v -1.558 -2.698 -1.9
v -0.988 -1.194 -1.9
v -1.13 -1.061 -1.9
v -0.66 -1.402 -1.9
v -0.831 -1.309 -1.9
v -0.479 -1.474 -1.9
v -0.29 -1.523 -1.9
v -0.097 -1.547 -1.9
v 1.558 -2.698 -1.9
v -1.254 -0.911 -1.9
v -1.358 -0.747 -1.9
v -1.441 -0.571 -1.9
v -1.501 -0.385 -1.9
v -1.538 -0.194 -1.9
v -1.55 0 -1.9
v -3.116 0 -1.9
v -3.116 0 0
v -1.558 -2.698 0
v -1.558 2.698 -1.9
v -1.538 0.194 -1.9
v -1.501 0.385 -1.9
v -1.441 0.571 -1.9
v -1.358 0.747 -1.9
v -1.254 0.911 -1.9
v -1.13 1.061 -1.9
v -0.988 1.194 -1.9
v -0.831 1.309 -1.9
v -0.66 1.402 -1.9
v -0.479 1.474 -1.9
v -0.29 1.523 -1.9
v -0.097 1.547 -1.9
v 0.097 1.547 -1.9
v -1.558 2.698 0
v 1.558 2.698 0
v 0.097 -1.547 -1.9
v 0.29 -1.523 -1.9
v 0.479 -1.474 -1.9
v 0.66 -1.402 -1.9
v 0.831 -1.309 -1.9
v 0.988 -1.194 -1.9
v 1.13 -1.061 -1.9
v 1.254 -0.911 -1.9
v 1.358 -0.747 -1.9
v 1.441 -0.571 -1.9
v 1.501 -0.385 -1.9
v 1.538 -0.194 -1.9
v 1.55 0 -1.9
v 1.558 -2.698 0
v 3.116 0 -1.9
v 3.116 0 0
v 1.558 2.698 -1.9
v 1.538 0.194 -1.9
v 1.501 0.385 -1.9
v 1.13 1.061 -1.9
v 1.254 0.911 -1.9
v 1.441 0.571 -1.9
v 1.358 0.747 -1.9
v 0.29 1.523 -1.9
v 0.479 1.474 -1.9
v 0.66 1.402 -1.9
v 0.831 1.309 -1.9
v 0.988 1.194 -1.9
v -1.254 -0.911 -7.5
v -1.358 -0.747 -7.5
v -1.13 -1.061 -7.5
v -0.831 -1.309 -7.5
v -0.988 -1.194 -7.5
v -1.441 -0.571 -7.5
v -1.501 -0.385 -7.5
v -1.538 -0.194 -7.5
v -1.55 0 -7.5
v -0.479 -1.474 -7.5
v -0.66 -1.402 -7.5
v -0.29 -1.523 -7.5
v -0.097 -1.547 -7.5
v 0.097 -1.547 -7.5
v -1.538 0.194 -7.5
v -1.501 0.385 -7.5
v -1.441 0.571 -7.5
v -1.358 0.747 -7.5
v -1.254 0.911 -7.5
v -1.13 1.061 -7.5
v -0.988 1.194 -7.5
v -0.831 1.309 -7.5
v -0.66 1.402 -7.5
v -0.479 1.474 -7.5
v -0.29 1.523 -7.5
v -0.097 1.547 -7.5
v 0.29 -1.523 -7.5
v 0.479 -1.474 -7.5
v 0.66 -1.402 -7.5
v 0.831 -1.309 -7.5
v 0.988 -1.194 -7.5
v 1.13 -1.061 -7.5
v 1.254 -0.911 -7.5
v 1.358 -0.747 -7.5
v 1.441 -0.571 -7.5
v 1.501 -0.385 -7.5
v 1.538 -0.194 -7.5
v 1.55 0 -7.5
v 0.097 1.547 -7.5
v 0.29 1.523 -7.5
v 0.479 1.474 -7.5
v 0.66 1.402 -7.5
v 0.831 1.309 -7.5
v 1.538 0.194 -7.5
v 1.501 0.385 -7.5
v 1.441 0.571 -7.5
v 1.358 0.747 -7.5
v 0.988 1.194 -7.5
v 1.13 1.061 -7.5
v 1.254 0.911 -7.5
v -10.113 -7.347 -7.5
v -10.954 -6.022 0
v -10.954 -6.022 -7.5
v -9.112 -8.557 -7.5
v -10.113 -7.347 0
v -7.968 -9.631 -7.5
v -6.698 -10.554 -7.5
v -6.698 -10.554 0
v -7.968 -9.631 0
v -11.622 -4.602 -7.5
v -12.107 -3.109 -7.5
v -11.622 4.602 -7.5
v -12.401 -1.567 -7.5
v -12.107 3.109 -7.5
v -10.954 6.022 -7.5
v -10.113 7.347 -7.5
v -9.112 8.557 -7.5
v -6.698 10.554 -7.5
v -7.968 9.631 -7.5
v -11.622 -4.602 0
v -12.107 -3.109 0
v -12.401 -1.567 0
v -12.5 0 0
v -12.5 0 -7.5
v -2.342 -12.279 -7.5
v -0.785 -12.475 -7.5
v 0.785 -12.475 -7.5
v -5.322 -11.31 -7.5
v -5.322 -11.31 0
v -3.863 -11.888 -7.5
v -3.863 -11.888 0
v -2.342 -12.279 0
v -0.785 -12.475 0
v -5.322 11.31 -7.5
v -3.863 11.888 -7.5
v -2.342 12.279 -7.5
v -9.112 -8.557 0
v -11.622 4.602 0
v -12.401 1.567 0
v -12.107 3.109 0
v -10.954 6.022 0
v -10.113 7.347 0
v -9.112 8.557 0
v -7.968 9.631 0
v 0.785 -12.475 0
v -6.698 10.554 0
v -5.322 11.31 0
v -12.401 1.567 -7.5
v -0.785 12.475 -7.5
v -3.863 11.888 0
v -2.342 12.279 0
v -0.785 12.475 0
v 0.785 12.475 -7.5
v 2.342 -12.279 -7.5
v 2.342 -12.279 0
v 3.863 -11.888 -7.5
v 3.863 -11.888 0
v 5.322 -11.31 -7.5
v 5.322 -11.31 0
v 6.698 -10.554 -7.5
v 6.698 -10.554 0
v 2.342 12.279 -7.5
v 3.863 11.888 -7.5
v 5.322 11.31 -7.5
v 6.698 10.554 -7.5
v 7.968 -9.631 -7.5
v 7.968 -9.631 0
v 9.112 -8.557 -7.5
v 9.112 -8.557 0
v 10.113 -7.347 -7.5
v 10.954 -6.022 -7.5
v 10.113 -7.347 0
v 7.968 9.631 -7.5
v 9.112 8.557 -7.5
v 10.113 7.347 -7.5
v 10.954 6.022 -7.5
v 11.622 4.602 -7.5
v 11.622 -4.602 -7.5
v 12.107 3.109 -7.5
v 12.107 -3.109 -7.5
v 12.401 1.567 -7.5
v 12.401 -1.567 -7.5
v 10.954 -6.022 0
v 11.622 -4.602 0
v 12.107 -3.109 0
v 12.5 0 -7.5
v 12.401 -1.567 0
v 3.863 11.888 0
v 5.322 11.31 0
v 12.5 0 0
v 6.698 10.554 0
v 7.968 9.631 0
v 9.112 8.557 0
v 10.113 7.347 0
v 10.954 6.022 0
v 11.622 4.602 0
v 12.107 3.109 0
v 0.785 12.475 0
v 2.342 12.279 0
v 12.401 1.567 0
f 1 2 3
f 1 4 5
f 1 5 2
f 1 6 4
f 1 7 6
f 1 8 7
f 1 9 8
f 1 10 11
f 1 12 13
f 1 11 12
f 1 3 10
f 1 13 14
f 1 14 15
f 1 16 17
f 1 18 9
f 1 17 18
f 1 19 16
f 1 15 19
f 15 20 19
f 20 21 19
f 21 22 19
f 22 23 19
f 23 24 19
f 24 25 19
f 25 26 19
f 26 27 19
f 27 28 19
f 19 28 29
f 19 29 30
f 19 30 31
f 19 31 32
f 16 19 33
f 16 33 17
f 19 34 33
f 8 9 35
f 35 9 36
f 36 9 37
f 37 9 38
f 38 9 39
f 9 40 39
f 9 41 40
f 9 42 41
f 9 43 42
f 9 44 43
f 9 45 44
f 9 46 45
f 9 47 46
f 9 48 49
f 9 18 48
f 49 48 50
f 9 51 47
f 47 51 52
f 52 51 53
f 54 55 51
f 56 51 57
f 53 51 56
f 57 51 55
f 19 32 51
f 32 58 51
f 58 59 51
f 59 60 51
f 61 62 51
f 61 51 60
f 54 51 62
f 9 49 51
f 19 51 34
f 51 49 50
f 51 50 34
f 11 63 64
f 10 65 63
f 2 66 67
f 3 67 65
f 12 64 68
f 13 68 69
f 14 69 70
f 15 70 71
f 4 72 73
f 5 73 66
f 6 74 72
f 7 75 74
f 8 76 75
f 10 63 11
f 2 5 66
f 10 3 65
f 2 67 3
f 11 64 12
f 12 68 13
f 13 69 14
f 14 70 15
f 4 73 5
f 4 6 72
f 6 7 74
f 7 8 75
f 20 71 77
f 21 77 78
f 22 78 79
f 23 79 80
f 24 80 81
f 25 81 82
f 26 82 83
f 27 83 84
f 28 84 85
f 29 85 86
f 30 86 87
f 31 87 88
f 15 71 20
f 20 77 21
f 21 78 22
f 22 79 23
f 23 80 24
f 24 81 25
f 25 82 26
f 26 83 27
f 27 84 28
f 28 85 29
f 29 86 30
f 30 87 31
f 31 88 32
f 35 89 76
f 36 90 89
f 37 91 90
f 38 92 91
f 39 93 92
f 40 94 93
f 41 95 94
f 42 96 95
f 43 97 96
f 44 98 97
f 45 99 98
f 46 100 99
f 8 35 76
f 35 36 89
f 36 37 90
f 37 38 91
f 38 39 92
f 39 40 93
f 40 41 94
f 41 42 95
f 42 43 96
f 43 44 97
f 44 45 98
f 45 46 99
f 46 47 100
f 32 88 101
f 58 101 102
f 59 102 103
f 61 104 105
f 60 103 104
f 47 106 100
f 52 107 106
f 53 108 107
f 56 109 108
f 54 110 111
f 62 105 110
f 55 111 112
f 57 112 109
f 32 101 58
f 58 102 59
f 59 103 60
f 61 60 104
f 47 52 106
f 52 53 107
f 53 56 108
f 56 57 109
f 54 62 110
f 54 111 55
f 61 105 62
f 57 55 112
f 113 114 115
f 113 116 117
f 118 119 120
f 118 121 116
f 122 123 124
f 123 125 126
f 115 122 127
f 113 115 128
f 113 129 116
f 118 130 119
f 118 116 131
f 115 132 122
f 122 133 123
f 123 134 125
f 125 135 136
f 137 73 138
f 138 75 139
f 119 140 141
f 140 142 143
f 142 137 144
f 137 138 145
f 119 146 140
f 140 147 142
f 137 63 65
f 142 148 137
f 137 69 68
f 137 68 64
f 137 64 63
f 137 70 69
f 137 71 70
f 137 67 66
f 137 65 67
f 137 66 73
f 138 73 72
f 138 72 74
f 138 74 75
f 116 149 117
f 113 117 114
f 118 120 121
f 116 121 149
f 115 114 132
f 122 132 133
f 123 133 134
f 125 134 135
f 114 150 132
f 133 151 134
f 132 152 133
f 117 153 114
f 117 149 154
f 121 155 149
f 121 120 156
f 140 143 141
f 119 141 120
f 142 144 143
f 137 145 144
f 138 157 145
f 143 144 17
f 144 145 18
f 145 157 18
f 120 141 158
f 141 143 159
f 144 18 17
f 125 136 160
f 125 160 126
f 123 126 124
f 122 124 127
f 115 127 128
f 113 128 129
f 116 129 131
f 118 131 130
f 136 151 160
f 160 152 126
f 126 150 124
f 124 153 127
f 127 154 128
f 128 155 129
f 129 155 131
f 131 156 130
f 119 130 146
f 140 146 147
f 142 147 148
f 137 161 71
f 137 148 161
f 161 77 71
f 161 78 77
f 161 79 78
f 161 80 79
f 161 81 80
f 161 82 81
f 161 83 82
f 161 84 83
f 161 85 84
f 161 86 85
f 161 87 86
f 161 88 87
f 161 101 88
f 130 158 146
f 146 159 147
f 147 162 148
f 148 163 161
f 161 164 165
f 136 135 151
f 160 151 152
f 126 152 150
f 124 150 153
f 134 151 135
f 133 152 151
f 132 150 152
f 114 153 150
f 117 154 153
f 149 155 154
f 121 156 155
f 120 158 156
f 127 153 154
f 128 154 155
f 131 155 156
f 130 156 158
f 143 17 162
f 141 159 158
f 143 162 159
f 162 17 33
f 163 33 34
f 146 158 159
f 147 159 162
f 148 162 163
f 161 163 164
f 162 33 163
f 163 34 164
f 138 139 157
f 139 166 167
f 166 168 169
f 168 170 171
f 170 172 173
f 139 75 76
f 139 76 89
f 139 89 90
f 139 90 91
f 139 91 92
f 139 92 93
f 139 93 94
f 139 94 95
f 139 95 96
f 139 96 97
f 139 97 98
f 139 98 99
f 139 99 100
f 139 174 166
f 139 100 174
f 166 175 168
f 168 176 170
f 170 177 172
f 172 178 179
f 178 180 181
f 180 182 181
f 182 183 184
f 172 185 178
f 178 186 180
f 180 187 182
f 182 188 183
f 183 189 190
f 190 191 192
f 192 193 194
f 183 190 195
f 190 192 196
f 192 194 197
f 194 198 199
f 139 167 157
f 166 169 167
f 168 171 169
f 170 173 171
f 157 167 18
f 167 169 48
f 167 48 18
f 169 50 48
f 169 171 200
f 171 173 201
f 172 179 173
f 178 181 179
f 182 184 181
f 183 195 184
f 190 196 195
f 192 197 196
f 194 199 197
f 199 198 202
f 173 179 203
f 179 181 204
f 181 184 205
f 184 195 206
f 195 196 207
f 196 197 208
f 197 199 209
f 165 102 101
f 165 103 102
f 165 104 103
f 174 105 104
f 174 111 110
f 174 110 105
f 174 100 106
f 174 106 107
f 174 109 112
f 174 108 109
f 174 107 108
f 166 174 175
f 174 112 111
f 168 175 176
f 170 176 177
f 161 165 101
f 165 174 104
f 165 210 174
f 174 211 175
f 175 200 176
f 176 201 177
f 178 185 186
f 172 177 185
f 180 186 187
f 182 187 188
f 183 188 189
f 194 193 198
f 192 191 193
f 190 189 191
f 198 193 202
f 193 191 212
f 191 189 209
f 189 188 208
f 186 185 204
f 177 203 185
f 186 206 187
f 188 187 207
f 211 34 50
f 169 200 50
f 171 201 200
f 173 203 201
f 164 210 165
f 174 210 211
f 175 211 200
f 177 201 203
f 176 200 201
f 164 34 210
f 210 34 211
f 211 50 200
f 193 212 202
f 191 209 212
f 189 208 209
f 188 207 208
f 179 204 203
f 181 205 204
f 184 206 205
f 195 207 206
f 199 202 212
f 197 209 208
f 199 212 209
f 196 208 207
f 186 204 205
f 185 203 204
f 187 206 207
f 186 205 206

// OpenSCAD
$fn = 50;


difference() {
	union() {
		translate(v = [0, 0, -7.5000000000]) {
			cylinder(h = 7.5000000000, r = 12.5000000000);
		}
	}
	union() {
		translate(v = [0, 0, 0]) {
			rotate(a = [0, 0, 0]) {
				difference() {
					union() {
						translate(v = [0, 0, -1.9000000000]) {
							linear_extrude(height = 1.9000000000) {
								polygon(points = [[3.1158000000, 0.0000000000], [1.5579000000, 2.6983619531], [-1.5579000000, 2.6983619531], [-3.1158000000, 0.0000000000], [-1.5579000000, -2.6983619531], [1.5579000000, -2.6983619531]]);
							}
						}
					}
					union();
				}
			}
		}
		#translate(v = [0, 0, -100.0000000000]) {
			cylinder(h = 200, r = 1.5500000000);
		}
	}
}
